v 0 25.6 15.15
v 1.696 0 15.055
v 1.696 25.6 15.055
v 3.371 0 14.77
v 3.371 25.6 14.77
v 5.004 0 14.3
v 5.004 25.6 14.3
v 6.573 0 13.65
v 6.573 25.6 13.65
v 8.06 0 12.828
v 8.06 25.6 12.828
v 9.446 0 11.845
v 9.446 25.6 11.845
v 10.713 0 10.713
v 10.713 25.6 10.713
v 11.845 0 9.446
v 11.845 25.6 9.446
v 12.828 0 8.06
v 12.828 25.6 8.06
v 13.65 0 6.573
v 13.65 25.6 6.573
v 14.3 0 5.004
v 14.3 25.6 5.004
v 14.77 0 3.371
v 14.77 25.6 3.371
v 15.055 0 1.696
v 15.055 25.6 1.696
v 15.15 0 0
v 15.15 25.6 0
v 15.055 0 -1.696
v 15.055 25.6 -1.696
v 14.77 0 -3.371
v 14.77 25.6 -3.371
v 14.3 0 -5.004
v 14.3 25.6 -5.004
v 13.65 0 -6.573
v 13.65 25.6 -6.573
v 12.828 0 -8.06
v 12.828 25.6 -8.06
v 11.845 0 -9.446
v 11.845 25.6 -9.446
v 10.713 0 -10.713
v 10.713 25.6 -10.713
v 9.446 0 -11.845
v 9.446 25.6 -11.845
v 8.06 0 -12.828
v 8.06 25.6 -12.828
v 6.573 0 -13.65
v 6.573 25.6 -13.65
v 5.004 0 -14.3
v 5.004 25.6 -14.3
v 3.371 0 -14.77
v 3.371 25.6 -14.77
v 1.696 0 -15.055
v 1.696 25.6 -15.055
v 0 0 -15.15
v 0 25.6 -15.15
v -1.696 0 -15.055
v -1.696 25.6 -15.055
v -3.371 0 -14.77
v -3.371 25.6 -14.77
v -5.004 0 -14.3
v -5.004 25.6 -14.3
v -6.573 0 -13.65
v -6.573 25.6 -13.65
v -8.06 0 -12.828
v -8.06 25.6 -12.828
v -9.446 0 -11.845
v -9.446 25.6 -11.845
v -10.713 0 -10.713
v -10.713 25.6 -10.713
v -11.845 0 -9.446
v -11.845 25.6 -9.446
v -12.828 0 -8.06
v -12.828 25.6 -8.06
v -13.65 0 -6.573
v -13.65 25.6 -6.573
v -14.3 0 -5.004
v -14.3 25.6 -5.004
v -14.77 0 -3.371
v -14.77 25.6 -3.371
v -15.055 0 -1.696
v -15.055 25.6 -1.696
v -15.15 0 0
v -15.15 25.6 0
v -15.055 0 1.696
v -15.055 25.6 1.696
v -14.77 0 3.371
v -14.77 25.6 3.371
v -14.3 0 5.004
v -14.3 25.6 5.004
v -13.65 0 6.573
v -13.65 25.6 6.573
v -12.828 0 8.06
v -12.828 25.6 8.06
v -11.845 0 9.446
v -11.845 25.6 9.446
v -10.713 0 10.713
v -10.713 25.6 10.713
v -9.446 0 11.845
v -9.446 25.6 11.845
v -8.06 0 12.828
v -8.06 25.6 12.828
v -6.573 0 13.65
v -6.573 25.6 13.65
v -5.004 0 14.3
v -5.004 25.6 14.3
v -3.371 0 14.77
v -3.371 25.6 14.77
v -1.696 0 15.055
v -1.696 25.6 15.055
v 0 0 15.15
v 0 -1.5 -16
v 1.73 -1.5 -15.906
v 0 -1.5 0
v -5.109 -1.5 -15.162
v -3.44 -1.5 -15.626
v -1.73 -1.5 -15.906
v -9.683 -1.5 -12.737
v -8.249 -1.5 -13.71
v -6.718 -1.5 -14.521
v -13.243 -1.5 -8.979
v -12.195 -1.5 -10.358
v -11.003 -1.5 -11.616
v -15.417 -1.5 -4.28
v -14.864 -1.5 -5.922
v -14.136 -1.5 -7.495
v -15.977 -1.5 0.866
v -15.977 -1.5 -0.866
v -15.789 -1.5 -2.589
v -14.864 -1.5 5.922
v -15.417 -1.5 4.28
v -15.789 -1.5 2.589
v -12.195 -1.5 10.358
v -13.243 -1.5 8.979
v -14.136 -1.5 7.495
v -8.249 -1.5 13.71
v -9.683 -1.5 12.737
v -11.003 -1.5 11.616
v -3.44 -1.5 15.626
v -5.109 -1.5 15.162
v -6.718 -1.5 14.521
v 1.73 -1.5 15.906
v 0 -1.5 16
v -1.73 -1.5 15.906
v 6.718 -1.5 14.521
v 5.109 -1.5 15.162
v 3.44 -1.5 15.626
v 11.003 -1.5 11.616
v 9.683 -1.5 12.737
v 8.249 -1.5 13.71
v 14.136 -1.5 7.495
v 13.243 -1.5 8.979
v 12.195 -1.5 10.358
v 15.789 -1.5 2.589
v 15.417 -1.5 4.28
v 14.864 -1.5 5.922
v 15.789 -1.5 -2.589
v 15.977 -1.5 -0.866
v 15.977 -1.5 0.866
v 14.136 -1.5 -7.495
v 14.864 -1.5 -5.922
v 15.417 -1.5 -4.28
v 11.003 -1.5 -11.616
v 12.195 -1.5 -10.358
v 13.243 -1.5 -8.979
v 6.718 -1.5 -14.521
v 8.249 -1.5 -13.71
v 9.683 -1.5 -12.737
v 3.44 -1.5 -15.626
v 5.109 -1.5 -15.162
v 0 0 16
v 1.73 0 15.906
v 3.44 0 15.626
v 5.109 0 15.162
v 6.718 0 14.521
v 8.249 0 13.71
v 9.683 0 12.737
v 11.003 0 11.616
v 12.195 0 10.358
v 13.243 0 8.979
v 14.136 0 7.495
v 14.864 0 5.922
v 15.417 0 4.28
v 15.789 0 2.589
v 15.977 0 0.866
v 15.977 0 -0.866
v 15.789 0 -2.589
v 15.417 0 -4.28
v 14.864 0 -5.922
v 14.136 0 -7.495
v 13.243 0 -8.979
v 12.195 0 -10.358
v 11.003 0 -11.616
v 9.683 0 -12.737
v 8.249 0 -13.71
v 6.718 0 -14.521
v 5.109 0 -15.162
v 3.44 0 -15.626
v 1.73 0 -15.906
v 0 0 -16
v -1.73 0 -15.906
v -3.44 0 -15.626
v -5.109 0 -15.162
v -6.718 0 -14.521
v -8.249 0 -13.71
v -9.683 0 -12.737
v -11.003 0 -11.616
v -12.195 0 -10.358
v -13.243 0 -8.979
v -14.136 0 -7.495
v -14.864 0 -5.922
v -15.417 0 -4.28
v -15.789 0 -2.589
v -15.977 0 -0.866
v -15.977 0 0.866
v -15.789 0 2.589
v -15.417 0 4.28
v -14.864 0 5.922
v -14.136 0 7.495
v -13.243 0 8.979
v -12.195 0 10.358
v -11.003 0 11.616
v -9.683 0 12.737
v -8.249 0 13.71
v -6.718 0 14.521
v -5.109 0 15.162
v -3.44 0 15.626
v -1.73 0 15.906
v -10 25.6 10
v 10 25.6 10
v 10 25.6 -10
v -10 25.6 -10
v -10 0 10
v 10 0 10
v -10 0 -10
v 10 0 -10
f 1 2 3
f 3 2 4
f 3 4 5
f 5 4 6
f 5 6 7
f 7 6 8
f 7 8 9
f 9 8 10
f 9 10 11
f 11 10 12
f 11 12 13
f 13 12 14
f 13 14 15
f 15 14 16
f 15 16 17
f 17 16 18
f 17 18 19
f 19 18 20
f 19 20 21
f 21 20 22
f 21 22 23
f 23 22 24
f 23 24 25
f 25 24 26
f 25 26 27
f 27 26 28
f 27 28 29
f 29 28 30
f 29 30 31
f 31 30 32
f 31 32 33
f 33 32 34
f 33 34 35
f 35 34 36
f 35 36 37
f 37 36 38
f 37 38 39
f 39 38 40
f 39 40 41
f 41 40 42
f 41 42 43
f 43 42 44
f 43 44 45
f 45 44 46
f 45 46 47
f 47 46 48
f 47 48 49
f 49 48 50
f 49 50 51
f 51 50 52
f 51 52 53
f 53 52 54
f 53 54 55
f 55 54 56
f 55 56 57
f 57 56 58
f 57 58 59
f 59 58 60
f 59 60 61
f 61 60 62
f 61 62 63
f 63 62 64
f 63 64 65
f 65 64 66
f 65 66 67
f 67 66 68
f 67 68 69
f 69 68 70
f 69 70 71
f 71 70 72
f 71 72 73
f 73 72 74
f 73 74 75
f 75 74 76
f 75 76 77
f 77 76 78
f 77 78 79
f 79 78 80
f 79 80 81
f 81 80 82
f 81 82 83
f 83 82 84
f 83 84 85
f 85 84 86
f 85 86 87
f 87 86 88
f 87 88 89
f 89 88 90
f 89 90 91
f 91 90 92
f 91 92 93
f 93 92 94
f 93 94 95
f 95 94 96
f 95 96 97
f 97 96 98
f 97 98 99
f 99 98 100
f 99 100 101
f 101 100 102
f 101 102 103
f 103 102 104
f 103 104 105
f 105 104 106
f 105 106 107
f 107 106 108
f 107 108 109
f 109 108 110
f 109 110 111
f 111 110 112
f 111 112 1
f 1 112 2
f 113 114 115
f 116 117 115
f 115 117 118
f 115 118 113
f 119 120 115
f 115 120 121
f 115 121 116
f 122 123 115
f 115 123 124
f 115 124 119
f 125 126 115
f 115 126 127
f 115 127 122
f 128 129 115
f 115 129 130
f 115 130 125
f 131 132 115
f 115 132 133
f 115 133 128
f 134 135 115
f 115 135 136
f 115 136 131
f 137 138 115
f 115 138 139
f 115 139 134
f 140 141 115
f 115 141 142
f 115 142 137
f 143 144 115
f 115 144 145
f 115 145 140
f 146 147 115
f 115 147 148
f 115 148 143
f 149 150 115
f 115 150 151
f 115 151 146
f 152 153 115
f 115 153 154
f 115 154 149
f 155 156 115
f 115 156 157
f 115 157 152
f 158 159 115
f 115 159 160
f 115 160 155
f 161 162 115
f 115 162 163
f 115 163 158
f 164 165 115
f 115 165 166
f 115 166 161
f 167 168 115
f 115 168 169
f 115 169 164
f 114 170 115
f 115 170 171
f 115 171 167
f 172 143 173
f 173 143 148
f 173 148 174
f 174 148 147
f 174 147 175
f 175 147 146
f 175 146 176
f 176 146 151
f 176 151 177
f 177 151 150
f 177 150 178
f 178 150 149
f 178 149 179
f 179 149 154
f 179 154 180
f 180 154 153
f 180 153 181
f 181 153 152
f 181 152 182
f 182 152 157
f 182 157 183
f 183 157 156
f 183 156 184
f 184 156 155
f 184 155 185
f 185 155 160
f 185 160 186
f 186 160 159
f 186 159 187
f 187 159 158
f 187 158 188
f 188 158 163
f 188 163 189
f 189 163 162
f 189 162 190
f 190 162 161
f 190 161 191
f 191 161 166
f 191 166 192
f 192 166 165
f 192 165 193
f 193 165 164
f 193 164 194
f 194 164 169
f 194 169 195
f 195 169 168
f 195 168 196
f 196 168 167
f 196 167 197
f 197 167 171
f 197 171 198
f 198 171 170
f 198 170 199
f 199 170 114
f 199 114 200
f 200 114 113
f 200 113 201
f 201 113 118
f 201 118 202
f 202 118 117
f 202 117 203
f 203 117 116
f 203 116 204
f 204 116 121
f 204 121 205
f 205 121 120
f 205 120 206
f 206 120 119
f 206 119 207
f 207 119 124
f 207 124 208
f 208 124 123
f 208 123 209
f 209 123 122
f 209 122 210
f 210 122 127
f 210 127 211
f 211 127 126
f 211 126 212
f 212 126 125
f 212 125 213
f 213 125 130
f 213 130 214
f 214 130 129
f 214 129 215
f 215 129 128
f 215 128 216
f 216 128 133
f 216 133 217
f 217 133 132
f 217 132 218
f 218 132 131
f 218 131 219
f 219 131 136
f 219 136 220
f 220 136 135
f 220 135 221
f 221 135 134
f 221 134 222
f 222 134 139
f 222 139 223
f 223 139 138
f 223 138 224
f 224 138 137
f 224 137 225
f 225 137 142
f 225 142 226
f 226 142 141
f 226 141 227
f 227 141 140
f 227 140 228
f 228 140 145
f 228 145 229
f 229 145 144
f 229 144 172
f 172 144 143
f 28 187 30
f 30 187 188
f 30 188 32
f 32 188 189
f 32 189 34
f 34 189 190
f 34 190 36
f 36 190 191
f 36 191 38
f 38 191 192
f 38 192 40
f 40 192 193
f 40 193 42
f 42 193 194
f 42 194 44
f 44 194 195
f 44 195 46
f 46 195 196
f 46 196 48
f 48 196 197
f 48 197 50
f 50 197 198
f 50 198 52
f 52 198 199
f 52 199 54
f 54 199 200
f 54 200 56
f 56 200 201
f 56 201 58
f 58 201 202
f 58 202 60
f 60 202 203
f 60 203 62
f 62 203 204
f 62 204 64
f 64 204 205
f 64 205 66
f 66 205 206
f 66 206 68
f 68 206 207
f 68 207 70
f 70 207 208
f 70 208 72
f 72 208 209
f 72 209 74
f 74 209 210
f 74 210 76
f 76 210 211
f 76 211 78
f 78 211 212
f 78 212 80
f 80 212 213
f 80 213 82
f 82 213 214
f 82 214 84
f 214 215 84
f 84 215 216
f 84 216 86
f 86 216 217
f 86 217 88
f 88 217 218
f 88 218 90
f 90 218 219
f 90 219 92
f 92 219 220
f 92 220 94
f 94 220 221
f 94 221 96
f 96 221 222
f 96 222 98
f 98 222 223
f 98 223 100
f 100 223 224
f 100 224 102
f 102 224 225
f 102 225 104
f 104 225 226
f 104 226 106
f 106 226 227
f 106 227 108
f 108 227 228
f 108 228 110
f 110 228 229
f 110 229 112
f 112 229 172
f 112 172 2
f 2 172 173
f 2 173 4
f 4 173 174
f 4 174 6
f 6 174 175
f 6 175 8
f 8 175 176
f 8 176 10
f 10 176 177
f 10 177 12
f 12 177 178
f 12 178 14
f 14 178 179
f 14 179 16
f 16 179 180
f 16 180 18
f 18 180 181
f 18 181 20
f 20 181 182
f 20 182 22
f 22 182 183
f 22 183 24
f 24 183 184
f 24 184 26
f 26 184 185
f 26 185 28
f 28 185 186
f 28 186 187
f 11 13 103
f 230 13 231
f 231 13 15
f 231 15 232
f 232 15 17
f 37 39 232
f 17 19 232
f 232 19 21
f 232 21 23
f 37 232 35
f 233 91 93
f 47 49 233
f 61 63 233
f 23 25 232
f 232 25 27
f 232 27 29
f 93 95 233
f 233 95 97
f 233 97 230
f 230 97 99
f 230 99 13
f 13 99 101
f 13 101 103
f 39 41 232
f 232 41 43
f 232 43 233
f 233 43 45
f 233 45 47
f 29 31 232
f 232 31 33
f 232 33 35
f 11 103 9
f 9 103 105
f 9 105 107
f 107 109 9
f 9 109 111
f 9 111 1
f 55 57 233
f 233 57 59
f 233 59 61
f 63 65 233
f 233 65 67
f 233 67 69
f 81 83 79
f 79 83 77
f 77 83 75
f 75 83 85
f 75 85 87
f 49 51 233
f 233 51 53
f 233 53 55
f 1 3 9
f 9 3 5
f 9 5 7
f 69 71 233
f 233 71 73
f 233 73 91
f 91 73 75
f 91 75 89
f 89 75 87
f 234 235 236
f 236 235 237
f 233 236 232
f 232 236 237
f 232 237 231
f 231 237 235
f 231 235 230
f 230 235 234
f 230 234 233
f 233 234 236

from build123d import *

# Parameters (mm, degrees)
SKETCH1_R           = 15
SKETCH1_W           = 20
SKETCH1_H           = 20
BOSS_EXTRUDE1_DEPTH = 27.1
SKETCH2_R           = 16
BOSS_EXTRUDE2_DEPTH = 1.5
BOSS_EXTRUDE4_START = -27.1
SKETCH3_R           = 15.15
SKETCH3_R_2         = 15
SKETCH3_W           = 20
SKETCH3_H           = 20
BOSS_EXTRUDE4_DEPTH = 27.1
CUT_EXTRUDE1_START  = -1.5
SKETCH4_R           = 15.15
CUT_EXTRUDE1_DEPTH  = 1.5


with BuildPart() as part:
    # Sketch1 → Boss-Extrude1 (new body)
    with BuildSketch(Plane(origin=(0, 0, 0), x_dir=(1, 0, 0), z_dir=(0, 1, 0))):
        with Locations(Location((0, 0, 0), (0, 0, 90))):
            Circle(SKETCH1_R)
        Rectangle(SKETCH1_W, SKETCH1_H, mode=Mode.SUBTRACT)
    extrude(amount=BOSS_EXTRUDE1_DEPTH)

    # Sketch2 → Boss-Extrude2 (add)
    with BuildSketch(Plane.XZ):
        with Locations(Location((0, 0, 0), (0, 0, 270))):
            Circle(SKETCH2_R)
    extrude(amount=BOSS_EXTRUDE2_DEPTH)

    # Sketch3 → Boss-Extrude4 (add)
    # profile 1 of 2: a face of its own
    with BuildSketch(Plane(origin=(0, 27.1, 0), x_dir=(1, 0, 0), z_dir=(0, 1, 0)).offset(BOSS_EXTRUDE4_START)):
        with Locations(Location((0, 0, 0), (0, 0, 270))):
            Circle(SKETCH3_R)
        Circle(SKETCH3_R_2, mode=Mode.SUBTRACT)
    # profile 2 of 2: a face of its own
    with BuildSketch(Plane(origin=(0, 27.1, 0), x_dir=(1, 0, 0), z_dir=(0, 1, 0)).offset(BOSS_EXTRUDE4_START)):
        Circle(SKETCH3_R_2)
        Rectangle(SKETCH3_W, SKETCH3_H, mode=Mode.SUBTRACT)
    extrude(amount=BOSS_EXTRUDE4_DEPTH)

    # Sketch4 → Cut-Extrude1 (cut)
    with BuildSketch(Plane(origin=(0, 27.1, 0), x_dir=(1, 0, 0), z_dir=(0, 1, 0)).offset(CUT_EXTRUDE1_START)):
        with Locations(Location((0, 0, 0), (0, 0, 270))):
            Circle(SKETCH4_R)
    extrude(amount=CUT_EXTRUDE1_DEPTH, mode=Mode.SUBTRACT)


solid = part.part
